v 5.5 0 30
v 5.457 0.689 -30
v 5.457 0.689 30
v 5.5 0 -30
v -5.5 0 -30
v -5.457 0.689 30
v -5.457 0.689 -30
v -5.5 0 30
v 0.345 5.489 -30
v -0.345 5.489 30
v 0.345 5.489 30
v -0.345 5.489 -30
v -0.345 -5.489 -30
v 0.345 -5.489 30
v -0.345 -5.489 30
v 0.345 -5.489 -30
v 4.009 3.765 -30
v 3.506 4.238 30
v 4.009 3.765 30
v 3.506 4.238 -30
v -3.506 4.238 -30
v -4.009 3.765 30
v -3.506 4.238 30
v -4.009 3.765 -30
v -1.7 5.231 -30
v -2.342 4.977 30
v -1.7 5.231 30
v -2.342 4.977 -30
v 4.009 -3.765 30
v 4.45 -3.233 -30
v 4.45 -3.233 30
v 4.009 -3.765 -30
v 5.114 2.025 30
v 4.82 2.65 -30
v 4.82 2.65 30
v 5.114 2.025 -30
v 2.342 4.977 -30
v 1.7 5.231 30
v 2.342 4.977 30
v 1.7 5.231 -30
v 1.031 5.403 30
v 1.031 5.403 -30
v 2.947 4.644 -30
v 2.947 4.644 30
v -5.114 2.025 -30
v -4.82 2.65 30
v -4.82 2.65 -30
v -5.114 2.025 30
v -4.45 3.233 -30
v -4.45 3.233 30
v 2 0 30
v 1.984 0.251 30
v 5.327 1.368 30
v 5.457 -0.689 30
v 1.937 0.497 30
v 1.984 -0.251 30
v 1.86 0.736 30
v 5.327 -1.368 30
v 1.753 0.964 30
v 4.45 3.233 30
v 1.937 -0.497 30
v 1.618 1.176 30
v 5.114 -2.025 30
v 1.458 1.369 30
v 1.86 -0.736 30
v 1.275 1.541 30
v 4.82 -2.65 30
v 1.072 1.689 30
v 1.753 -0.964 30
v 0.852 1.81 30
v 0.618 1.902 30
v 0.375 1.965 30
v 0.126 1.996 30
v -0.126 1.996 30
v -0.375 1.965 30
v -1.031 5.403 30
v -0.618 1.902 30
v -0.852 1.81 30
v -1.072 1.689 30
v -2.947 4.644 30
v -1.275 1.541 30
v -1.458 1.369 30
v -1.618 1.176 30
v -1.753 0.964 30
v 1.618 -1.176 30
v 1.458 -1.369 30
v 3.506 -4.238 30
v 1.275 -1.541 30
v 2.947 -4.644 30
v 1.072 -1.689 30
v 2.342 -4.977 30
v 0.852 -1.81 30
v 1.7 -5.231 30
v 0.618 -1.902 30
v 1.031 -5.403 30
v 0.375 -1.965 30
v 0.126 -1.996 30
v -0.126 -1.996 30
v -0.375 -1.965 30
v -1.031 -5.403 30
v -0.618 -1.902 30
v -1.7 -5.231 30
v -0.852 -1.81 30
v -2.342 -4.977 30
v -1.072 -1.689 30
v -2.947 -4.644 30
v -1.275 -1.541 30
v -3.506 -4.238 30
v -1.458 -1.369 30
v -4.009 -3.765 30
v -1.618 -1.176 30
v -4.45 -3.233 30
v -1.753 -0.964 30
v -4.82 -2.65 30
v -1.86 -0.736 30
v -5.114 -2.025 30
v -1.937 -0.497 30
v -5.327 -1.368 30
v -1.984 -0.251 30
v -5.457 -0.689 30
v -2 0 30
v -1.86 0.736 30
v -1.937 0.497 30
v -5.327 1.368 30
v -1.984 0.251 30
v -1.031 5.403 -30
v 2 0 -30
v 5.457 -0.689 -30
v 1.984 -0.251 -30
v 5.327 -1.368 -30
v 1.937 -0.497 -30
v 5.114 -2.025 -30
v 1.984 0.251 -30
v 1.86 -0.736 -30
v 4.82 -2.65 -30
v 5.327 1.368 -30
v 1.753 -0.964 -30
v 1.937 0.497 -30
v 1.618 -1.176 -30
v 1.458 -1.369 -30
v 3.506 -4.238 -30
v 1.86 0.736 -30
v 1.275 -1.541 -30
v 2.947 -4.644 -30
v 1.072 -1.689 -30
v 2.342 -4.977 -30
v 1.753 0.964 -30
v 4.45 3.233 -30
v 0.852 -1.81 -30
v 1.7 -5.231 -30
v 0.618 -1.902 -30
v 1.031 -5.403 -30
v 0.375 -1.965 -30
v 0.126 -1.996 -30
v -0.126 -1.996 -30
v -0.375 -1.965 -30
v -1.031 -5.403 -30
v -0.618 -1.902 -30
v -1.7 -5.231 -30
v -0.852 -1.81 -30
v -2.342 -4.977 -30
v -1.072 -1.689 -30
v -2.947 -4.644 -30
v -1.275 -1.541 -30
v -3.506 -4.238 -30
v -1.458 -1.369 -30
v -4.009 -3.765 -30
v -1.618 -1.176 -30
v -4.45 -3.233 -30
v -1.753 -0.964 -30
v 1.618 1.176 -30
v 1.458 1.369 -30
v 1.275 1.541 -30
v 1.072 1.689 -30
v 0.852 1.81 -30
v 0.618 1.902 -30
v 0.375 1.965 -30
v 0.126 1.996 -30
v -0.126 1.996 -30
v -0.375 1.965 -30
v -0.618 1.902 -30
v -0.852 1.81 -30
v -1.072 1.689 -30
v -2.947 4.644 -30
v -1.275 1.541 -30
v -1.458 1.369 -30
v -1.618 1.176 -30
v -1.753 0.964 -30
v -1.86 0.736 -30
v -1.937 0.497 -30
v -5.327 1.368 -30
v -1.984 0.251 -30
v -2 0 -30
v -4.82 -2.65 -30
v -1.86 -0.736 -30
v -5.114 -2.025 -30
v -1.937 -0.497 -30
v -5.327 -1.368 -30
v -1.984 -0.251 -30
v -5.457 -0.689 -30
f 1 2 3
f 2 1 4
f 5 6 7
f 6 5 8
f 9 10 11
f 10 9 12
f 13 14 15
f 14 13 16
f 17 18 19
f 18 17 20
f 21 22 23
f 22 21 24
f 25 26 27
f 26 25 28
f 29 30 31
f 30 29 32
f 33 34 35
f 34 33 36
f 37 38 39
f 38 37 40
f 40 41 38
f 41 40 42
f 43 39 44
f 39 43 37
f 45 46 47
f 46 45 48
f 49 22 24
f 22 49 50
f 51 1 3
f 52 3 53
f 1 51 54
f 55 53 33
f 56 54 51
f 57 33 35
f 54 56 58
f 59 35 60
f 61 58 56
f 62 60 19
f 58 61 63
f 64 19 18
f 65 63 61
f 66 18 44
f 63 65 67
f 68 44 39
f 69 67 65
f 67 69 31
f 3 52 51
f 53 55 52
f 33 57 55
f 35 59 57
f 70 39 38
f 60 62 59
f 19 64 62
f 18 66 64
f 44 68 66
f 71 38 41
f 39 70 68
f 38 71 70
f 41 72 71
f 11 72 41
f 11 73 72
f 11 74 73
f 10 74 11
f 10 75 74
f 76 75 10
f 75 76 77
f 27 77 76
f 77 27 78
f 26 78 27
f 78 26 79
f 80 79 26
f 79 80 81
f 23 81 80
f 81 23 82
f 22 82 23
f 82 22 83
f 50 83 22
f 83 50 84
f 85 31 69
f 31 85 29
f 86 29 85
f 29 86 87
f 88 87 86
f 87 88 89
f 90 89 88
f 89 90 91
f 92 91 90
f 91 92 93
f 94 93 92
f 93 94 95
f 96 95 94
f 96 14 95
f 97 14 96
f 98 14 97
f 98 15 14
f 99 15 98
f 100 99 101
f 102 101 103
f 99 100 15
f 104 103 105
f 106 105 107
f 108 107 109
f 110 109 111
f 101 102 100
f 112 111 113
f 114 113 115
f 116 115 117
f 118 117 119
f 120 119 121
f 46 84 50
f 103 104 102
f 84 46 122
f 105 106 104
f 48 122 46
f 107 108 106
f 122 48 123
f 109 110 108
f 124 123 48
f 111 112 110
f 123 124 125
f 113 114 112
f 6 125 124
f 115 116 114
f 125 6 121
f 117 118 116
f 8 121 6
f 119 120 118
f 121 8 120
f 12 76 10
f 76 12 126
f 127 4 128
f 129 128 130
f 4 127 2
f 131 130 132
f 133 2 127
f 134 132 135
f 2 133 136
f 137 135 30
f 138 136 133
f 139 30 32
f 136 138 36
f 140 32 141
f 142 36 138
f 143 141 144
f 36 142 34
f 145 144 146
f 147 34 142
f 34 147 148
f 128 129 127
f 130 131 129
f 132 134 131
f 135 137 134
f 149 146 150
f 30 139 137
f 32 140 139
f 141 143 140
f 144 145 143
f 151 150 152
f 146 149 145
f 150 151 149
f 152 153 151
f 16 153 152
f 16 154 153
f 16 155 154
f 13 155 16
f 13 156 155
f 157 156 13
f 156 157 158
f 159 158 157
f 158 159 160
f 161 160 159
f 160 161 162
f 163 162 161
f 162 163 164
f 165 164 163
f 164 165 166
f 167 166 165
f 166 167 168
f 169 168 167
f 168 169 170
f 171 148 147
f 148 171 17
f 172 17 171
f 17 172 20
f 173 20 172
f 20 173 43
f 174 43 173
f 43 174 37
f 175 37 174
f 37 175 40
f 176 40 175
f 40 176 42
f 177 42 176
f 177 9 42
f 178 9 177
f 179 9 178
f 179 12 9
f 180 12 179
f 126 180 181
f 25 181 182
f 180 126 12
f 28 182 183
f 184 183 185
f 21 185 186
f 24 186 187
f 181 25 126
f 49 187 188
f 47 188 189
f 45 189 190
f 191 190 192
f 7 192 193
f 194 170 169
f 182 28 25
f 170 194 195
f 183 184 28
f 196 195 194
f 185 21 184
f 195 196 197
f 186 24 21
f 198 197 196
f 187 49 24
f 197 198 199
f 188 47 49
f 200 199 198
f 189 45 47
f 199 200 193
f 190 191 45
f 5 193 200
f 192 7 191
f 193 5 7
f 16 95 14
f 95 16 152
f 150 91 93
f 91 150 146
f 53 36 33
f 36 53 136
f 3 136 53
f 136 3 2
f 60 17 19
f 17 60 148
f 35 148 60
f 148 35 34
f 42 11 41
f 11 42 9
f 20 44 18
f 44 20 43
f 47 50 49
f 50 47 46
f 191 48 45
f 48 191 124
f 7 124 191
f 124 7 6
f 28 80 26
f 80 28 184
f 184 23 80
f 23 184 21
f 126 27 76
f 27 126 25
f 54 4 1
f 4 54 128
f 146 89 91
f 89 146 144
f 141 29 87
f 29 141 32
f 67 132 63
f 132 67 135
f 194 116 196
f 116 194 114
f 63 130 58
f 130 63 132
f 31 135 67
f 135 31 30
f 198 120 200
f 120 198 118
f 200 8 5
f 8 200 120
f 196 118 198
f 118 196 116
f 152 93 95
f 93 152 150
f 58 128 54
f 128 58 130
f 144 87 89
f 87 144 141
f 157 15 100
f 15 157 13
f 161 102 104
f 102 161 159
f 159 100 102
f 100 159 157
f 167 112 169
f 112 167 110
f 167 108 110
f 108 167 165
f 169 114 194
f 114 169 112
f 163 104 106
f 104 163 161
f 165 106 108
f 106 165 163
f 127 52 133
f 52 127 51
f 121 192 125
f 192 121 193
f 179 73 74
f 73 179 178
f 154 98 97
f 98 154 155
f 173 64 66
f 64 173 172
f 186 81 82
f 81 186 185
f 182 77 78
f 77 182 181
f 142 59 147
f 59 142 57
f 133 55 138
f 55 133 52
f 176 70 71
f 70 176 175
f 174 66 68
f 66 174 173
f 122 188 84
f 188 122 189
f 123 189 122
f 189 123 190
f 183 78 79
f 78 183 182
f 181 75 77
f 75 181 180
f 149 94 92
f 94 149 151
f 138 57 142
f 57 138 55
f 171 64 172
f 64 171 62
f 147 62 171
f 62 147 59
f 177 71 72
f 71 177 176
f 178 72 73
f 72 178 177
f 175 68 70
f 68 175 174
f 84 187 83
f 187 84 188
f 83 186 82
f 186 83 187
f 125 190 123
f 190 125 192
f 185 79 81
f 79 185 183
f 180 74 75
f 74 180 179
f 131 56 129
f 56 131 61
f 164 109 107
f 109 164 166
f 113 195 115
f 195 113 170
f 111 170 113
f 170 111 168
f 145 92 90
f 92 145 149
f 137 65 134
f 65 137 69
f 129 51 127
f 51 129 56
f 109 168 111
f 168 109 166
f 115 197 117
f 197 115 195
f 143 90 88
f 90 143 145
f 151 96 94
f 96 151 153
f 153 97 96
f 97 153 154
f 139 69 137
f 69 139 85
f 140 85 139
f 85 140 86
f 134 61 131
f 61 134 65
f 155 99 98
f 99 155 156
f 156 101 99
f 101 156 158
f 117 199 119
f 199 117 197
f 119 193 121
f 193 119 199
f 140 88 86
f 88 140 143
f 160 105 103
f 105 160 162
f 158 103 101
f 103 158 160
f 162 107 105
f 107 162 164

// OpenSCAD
$fn = 50;


difference() {
	union() {
		translate(v = [0, 0, -30.0000000000]) {
			cylinder(h = 60, r = 5.5000000000);
		}
	}
	union() {
		translate(v = [0, 0, -100.0000000000]) {
			cylinder(h = 200, r = 2);
		}
	}
}
